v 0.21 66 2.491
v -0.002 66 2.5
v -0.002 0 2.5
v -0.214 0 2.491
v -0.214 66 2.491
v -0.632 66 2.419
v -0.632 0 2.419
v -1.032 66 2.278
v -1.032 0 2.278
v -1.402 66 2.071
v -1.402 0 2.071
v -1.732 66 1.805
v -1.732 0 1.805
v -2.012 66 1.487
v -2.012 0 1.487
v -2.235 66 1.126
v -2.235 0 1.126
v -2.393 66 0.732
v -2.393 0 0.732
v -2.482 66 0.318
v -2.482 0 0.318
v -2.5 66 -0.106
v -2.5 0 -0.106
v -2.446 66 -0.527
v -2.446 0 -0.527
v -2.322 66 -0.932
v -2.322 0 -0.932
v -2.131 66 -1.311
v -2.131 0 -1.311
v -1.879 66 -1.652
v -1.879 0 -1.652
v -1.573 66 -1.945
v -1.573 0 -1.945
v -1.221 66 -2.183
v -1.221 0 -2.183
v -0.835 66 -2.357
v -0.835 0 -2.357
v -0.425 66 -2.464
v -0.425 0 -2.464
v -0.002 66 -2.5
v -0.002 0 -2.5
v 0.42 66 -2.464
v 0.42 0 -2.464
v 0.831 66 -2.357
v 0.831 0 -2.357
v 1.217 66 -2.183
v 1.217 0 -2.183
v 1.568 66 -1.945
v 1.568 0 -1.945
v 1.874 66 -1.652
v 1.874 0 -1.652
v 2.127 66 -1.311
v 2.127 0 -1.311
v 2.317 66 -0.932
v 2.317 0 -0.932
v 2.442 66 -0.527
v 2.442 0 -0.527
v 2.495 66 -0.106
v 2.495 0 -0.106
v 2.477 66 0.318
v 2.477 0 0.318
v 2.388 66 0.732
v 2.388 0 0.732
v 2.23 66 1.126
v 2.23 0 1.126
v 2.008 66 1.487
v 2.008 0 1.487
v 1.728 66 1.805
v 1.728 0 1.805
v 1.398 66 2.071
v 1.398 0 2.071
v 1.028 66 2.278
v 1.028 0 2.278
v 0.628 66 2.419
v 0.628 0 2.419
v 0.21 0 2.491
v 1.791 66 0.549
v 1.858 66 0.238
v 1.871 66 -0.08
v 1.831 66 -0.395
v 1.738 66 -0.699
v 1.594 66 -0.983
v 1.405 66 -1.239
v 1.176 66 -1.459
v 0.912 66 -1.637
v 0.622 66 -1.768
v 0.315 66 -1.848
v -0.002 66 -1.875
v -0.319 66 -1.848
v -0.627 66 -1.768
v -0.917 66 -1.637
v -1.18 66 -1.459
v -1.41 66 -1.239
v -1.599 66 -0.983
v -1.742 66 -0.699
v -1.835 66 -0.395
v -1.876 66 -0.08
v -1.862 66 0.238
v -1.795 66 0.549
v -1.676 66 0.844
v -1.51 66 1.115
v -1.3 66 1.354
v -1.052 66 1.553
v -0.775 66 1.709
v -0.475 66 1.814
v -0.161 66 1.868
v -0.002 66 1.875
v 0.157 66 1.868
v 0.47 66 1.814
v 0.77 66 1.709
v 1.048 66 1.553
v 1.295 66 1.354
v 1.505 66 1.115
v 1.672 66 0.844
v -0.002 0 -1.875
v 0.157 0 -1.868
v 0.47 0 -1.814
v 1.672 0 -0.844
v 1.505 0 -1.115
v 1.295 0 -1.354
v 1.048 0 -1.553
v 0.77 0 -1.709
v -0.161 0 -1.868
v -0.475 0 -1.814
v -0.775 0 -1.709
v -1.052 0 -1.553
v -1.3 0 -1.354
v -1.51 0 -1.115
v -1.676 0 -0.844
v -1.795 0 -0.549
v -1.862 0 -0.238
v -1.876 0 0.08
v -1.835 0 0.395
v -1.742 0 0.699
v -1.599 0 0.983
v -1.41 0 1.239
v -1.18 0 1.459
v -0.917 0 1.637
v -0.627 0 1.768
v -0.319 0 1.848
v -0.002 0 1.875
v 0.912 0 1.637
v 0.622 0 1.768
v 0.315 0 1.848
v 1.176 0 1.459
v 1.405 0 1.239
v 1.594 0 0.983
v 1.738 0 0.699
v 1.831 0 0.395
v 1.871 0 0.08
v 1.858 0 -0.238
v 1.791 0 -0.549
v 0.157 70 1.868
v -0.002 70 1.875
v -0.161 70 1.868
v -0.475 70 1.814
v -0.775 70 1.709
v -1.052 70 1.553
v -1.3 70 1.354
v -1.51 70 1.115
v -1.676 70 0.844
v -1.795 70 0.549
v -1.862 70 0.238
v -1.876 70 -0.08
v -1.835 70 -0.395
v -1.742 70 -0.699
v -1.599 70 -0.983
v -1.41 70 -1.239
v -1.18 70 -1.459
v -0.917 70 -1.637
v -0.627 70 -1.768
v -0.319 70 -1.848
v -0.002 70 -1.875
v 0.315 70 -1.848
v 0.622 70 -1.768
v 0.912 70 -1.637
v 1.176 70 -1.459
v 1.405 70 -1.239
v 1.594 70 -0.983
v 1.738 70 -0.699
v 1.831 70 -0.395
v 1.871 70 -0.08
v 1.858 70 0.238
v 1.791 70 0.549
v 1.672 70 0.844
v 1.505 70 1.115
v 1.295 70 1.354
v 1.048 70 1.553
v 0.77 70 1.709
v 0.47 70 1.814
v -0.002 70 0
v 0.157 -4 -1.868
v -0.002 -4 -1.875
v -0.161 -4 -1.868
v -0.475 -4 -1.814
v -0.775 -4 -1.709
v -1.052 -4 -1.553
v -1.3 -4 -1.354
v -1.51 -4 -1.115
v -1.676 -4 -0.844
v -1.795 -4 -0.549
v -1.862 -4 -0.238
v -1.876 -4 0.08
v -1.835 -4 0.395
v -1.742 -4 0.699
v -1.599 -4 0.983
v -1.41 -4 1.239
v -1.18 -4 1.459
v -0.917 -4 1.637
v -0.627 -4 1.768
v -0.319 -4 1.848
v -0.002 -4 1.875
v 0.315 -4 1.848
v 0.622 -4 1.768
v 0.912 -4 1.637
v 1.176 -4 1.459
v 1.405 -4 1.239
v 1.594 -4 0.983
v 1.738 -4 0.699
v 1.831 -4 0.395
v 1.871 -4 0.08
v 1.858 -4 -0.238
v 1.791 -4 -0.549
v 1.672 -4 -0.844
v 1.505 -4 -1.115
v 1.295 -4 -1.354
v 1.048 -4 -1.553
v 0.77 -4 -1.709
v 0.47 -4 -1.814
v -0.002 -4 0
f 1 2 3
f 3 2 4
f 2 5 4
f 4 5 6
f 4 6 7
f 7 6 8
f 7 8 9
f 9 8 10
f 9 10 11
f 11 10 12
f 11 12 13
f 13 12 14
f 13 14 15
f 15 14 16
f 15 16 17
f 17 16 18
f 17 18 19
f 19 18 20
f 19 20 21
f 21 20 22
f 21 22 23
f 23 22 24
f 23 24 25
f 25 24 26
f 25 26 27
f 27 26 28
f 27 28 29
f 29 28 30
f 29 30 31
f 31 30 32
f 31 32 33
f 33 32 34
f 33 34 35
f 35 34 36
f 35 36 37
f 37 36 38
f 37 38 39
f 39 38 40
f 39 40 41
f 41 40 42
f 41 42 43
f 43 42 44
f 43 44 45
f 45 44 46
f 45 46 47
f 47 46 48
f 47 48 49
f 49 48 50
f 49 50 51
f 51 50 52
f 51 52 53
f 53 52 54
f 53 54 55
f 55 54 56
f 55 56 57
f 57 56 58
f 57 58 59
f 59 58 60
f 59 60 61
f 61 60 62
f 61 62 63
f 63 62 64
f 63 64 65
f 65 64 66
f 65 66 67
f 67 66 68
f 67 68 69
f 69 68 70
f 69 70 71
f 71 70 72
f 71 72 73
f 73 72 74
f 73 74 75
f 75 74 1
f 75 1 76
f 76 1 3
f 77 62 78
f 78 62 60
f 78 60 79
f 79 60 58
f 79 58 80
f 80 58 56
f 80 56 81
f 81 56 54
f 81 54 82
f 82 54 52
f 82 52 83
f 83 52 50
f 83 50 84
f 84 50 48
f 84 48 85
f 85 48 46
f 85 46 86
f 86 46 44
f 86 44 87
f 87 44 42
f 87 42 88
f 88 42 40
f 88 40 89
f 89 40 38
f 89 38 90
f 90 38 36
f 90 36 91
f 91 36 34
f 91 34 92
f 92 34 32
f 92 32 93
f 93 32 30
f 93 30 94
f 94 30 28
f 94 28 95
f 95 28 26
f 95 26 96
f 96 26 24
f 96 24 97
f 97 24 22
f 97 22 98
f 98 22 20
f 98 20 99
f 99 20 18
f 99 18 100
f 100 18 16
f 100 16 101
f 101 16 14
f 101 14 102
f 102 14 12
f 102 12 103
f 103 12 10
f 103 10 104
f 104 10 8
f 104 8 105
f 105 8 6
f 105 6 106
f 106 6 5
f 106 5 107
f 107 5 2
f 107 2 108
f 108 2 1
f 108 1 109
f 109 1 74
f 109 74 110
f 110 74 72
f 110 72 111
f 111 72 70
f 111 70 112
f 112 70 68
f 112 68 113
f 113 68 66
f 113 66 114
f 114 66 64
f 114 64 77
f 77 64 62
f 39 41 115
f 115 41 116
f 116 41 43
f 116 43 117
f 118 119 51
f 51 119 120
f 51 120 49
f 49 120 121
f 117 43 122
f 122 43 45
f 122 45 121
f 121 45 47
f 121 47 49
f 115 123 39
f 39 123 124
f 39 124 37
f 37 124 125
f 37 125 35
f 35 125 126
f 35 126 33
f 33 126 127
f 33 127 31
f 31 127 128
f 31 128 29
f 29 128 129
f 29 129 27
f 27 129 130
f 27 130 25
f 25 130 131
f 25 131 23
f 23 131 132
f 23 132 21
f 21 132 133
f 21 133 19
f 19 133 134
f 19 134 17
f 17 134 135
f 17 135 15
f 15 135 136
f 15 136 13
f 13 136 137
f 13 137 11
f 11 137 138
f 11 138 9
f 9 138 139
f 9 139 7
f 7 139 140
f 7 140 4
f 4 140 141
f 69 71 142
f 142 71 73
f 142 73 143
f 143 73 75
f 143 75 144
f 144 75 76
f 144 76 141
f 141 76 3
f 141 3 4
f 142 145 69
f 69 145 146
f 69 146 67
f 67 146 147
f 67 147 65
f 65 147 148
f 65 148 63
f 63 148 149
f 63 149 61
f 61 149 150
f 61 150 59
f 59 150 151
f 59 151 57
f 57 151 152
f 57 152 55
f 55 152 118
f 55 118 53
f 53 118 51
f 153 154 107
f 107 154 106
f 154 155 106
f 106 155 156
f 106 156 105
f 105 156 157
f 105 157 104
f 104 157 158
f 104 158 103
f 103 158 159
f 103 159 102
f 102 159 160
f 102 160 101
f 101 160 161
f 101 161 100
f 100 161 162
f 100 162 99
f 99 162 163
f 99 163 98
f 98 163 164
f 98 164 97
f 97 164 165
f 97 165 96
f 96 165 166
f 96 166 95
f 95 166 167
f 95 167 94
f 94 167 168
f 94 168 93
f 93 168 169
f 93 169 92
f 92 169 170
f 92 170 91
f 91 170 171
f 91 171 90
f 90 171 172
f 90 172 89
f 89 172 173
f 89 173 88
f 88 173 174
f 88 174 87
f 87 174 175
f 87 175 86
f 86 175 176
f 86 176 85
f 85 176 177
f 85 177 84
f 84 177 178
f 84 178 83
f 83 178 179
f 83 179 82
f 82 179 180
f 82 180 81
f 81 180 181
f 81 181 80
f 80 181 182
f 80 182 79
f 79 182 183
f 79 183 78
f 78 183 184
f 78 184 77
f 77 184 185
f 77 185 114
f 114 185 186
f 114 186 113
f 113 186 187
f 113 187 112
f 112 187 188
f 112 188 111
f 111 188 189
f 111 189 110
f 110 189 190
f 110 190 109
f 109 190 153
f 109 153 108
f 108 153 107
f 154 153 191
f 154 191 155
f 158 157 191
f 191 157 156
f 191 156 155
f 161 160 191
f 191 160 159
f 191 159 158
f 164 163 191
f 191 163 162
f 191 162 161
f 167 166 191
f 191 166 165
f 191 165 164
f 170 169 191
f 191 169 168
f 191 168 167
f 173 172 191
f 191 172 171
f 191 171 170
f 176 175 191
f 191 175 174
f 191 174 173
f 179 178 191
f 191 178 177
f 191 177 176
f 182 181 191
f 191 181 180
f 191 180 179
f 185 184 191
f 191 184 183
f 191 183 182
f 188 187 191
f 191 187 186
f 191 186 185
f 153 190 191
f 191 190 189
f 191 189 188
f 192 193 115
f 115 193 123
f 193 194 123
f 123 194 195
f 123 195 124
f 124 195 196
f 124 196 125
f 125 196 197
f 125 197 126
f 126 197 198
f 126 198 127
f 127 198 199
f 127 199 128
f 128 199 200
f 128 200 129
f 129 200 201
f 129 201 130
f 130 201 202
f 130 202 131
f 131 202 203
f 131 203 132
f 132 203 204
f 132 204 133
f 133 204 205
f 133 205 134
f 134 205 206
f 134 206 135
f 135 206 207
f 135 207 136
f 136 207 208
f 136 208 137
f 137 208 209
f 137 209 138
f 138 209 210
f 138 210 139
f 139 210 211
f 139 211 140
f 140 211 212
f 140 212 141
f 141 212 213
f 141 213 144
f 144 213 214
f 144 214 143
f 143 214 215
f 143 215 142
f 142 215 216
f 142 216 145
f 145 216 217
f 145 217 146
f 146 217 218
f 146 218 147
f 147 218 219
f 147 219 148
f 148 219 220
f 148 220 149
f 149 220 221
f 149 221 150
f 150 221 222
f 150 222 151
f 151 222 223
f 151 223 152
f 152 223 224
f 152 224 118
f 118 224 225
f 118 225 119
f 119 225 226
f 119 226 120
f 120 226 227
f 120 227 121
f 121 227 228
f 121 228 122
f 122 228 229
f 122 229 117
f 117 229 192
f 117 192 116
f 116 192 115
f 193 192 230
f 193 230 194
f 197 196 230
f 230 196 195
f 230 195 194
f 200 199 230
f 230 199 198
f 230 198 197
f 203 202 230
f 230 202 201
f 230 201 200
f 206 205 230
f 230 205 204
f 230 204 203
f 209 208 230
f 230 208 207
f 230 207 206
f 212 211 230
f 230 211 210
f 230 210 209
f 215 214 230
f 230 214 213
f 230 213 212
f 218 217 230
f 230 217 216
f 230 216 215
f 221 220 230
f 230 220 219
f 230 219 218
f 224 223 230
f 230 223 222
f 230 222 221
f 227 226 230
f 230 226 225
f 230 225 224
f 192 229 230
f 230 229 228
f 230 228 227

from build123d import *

# Parameters (mm, degrees)
CROQUIS1_R              = 2.5
SALIENTE_EXTRUIR1_DEPTH = 66
CROQUIS2_R              = 1.875
SALIENTE_EXTRUIR2_DEPTH = 4
CROQUIS3_R              = 1.875
SALIENTE_EXTRUIR3_DEPTH = 4


with BuildPart() as part:
    # Croquis1 → Saliente-Extruir1 (new body)
    with BuildSketch(Plane(origin=(0, 0, 0), x_dir=(1, 0, 0), z_dir=(0, 1, 0))):
        Circle(CROQUIS1_R)
    extrude(amount=SALIENTE_EXTRUIR1_DEPTH)

    # Croquis2 → Saliente-Extruir2 (add)
    with BuildSketch(Plane(origin=(0, 66, 0), x_dir=(1, 0, 0), z_dir=(0, 1, 0))):
        Circle(CROQUIS2_R)
    extrude(amount=SALIENTE_EXTRUIR2_DEPTH)

    # Croquis3 → Saliente-Extruir3 (add)
    with BuildSketch(Plane.XZ):
        Circle(CROQUIS3_R)
    extrude(amount=SALIENTE_EXTRUIR3_DEPTH)


solid = part.part
